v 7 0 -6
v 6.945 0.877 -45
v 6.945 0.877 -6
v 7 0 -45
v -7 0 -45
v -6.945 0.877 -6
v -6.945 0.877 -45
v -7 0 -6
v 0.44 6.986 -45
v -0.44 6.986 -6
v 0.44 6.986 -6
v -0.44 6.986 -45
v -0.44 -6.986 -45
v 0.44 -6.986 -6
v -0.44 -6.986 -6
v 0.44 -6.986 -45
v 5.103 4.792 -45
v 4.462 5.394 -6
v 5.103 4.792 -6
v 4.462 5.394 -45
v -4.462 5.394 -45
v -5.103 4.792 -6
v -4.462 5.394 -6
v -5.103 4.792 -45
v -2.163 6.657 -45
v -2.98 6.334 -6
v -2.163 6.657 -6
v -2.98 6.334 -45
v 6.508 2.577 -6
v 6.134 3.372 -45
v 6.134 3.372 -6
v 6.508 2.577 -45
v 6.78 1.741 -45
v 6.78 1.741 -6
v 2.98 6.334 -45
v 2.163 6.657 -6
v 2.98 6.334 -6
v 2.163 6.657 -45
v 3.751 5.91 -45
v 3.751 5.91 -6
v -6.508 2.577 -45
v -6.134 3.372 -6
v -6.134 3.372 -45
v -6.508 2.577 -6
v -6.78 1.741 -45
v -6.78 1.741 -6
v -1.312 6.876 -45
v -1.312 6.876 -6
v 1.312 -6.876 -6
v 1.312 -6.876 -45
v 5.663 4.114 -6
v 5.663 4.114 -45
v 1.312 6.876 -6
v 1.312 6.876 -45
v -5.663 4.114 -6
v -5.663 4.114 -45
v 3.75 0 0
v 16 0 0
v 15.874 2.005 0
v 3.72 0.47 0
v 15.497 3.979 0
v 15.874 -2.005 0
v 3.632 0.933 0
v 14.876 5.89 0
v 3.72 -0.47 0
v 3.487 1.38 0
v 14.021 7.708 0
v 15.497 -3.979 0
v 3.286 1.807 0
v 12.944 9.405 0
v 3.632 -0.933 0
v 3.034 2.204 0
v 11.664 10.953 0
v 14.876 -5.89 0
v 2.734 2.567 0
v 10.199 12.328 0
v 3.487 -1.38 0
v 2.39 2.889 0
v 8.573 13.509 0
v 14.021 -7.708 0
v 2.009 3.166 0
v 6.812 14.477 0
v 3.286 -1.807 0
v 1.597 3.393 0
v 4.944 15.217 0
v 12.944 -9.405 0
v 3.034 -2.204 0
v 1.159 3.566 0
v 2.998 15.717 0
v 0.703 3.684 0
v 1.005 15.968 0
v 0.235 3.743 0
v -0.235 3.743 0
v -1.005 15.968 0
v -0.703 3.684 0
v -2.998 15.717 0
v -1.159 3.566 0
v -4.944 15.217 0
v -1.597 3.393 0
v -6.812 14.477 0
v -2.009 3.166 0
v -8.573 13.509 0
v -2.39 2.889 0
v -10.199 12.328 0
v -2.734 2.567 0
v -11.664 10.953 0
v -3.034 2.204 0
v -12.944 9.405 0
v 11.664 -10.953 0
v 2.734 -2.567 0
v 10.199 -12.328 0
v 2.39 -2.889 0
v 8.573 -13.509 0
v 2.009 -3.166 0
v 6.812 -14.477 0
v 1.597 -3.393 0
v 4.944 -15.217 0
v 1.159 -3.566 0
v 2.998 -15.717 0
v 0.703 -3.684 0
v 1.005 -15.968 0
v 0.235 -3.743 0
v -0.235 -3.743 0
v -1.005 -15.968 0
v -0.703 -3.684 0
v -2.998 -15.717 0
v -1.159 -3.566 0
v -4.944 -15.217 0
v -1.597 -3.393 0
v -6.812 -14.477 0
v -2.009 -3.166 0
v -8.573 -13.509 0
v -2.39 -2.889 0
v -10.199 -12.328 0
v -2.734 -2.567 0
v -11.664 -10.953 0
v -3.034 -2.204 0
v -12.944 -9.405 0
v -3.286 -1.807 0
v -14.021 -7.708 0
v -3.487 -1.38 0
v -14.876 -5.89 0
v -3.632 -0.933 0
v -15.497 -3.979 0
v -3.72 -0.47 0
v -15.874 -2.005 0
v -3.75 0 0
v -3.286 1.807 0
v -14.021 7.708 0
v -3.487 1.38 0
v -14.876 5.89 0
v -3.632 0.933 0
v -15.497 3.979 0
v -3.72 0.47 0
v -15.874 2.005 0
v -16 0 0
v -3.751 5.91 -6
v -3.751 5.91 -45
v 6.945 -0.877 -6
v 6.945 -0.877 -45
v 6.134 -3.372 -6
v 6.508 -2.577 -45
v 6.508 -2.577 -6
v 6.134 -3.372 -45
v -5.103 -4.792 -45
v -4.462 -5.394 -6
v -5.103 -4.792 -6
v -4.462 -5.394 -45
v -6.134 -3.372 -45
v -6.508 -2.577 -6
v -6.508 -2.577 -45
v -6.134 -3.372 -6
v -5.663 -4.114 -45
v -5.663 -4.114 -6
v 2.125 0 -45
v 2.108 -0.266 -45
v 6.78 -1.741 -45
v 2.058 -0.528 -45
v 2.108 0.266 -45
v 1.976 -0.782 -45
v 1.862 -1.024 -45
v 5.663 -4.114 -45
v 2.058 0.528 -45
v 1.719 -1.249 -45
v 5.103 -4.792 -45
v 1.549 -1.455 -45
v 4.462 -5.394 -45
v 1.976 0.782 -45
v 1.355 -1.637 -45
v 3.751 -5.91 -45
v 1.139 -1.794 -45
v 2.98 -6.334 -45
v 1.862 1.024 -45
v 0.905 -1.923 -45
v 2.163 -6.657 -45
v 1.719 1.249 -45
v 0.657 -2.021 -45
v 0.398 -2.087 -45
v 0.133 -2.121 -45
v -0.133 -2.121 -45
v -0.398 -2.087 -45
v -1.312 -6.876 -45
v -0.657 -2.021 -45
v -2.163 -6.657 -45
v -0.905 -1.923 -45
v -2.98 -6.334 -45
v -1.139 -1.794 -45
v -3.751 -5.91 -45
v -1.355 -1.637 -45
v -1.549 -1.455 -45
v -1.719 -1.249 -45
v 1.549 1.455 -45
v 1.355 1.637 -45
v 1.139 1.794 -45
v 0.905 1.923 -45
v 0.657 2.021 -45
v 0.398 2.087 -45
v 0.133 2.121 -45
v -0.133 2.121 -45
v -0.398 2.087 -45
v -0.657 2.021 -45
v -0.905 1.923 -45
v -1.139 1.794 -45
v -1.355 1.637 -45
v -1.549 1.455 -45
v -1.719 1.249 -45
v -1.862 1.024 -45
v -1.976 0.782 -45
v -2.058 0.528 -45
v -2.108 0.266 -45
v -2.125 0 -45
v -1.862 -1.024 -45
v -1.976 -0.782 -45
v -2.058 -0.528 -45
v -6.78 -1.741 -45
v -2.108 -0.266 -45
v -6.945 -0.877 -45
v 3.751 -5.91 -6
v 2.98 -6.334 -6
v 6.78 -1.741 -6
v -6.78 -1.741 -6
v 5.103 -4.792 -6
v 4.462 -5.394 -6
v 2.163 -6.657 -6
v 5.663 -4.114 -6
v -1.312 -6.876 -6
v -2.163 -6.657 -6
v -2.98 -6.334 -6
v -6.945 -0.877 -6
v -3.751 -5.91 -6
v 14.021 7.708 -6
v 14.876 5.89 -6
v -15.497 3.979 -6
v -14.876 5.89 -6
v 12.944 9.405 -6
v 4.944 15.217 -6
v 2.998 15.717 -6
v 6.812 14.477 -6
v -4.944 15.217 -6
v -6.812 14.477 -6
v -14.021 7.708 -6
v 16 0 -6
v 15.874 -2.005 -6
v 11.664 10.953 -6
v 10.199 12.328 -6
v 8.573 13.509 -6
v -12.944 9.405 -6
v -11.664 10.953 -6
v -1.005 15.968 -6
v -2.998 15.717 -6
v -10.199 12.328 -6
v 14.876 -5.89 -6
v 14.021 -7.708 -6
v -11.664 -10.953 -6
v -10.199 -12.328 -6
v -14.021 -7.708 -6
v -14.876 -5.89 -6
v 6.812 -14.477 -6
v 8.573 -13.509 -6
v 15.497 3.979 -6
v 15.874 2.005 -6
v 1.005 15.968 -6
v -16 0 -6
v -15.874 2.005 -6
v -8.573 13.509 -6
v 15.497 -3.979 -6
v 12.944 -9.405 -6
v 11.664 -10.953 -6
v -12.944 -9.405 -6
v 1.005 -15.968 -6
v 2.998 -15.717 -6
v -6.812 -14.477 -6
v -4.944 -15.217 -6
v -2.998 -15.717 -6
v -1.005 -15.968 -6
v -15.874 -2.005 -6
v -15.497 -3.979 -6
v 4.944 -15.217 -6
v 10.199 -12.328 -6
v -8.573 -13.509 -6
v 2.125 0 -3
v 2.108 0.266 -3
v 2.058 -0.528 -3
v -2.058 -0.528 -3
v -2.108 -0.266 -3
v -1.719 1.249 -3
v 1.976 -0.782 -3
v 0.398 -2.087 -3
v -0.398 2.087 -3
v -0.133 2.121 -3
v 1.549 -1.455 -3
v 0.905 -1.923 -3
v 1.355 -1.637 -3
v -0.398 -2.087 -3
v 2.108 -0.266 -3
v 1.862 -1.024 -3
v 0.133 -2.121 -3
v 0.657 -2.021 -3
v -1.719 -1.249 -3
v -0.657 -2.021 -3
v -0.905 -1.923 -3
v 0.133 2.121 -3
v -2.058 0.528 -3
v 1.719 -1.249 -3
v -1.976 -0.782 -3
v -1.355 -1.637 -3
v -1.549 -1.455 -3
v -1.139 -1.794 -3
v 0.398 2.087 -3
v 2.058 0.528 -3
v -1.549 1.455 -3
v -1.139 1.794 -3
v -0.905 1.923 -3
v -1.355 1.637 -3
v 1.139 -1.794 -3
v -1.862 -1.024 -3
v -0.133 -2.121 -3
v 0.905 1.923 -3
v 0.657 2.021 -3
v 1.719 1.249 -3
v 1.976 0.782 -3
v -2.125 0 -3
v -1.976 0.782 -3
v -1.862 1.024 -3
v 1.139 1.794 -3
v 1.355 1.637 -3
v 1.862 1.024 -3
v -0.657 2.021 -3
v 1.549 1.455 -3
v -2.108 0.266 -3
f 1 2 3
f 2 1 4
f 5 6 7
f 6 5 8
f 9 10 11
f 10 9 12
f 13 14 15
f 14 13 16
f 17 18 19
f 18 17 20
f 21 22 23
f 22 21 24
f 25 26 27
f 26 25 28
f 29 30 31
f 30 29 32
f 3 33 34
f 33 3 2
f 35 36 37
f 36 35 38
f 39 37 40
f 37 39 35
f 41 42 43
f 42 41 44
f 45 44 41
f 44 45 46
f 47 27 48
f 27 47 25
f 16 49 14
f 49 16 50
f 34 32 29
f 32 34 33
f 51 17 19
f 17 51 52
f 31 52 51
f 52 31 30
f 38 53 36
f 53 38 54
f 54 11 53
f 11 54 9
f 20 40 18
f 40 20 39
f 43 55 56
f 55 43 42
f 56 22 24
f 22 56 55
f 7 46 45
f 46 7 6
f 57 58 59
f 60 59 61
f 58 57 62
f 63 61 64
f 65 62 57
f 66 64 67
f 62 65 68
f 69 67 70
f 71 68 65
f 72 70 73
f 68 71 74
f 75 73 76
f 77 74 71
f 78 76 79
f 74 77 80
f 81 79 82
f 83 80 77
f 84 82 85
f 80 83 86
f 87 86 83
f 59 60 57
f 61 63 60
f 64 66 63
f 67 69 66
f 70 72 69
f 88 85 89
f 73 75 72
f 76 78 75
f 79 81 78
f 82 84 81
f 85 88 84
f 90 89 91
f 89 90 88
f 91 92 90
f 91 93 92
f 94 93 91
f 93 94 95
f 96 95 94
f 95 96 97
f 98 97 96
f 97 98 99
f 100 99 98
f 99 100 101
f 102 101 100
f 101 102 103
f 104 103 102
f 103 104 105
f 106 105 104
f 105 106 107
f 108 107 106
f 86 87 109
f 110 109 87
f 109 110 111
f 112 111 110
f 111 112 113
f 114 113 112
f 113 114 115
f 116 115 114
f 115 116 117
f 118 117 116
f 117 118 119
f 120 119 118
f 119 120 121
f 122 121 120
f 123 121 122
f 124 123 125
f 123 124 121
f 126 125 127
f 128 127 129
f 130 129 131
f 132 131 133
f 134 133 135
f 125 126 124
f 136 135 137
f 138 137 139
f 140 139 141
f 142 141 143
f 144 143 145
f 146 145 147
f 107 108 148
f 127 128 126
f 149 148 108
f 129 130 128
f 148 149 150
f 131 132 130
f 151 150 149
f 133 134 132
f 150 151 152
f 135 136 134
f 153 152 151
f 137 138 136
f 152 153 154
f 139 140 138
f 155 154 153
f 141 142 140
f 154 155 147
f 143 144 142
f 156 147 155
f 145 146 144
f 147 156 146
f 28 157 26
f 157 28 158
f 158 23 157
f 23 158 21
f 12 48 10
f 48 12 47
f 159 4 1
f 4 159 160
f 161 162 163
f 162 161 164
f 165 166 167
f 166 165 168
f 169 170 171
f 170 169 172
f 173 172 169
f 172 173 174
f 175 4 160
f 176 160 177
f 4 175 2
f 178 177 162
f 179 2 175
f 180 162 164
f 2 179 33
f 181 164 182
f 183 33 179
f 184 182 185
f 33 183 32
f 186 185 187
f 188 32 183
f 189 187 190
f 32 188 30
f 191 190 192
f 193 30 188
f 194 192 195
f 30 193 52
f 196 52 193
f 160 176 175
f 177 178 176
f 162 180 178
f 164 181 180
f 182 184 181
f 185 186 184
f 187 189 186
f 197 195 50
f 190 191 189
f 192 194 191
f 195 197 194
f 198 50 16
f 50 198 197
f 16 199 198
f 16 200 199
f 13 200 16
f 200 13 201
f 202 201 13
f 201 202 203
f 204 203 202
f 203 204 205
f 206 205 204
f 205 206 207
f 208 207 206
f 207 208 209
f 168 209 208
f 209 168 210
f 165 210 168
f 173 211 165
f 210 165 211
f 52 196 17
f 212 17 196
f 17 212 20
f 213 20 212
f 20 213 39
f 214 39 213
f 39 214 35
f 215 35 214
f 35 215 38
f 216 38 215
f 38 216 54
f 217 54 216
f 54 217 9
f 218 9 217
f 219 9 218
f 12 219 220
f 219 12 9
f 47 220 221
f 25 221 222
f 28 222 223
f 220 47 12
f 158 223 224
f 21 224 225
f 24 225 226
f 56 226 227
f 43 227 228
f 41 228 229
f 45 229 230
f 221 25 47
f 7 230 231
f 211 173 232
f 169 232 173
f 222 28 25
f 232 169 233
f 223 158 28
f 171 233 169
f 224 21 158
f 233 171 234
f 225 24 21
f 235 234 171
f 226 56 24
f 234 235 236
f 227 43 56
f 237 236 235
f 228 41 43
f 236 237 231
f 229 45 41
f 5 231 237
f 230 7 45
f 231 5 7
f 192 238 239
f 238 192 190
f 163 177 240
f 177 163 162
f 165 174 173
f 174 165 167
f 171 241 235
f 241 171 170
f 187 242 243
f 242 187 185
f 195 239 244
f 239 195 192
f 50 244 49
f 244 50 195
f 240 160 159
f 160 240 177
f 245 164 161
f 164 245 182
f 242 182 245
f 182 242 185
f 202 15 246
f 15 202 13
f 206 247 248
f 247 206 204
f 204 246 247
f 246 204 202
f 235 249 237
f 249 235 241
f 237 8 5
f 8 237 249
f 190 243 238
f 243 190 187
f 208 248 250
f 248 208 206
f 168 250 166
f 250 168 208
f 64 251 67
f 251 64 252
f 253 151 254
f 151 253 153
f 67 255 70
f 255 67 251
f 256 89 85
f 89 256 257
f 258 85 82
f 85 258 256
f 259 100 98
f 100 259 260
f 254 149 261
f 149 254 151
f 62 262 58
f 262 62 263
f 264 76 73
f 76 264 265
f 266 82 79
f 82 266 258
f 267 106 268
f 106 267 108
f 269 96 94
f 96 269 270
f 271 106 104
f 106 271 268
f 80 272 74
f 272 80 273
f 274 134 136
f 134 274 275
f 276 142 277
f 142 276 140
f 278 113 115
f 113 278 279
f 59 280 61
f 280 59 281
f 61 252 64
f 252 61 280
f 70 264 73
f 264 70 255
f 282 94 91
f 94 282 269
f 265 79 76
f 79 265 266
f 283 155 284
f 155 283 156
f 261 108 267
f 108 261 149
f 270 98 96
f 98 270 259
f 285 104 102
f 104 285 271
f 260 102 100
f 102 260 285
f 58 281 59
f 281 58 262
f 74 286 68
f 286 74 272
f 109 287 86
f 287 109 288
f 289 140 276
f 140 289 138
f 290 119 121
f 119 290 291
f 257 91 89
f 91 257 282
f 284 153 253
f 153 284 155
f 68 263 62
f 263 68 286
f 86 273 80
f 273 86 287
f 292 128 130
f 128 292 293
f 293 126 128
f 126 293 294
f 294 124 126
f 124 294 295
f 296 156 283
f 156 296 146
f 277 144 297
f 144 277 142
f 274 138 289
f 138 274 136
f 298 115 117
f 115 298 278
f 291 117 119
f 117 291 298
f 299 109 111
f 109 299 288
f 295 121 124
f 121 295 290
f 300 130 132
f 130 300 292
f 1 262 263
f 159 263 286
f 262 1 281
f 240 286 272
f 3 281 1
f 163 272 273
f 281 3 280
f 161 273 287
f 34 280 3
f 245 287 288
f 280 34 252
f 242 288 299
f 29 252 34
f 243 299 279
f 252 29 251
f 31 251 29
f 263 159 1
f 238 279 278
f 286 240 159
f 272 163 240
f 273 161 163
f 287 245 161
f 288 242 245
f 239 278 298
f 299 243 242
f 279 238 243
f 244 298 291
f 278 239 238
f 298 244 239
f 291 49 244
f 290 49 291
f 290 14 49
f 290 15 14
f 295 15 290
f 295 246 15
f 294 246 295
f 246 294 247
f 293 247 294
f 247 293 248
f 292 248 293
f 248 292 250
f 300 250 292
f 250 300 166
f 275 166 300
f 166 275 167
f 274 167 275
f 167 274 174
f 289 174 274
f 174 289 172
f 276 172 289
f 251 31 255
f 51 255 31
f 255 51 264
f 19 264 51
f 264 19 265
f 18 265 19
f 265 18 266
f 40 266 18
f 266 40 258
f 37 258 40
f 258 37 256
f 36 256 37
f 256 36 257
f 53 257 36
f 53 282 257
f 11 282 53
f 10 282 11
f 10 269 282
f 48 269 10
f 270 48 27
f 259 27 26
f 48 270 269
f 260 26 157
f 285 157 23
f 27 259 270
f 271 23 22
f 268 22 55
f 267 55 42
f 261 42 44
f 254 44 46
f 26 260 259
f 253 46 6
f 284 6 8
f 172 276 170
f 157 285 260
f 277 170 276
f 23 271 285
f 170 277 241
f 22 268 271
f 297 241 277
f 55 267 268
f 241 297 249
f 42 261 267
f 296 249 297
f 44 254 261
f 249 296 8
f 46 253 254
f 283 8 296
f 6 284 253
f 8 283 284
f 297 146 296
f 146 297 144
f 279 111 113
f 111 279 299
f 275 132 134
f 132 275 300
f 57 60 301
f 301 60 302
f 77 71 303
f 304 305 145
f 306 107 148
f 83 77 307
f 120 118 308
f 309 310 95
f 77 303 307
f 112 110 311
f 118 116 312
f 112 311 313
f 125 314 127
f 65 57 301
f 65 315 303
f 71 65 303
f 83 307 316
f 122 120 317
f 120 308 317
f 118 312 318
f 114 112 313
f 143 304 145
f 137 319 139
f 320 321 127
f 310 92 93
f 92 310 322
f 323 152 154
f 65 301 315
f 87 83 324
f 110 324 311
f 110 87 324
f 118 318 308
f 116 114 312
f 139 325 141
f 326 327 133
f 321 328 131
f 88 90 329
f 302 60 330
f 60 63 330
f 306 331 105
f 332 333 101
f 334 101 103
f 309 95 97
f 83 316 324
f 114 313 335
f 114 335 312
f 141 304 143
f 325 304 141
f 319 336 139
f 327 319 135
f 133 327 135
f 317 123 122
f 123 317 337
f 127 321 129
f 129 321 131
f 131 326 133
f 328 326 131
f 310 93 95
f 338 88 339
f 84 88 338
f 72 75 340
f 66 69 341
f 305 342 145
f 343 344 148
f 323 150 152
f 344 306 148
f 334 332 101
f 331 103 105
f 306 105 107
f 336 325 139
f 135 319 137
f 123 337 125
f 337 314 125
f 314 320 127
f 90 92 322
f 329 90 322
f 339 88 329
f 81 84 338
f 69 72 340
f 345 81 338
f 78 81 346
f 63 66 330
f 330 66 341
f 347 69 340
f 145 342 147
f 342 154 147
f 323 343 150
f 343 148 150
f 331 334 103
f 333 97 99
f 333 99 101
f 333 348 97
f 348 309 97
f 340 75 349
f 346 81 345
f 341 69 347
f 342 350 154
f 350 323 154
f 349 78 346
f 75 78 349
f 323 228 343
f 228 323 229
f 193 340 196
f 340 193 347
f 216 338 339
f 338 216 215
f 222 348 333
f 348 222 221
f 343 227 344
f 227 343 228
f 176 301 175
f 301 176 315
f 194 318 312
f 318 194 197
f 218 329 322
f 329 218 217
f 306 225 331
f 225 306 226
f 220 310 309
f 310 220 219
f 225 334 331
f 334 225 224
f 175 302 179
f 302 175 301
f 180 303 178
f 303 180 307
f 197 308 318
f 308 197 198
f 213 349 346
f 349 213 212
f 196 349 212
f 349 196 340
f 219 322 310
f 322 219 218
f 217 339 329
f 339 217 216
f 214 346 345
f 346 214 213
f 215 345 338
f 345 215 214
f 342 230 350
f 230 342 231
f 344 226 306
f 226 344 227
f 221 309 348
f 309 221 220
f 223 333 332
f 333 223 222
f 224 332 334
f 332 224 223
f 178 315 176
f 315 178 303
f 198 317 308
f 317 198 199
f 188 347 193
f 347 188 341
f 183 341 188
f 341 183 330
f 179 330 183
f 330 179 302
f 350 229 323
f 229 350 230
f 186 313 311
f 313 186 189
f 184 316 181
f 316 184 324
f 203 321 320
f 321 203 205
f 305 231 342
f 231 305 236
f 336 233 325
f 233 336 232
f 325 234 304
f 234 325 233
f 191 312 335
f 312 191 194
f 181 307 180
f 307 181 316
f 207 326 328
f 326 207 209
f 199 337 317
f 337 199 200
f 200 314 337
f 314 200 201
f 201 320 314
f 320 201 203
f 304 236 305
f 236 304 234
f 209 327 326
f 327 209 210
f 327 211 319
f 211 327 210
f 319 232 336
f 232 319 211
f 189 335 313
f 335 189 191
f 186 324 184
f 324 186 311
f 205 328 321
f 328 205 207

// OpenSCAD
$fn = 50;


difference() {
	union() {
		translate(v = [0, 0, -45.0000000000]) {
			cylinder(h = 45, r = 7.0000000000);
		}
		translate(v = [0, 0, -6.0000000000]) {
			cylinder(h = 6, r = 16.0000000000);
		}
	}
	union() {
		translate(v = [0, 0, 0]) {
			rotate(a = [0, 0, 0]) {
				difference() {
					union() {
						#translate(v = [0, 0, -45.0000000000]) {
							cylinder(h = 45, r = 2.0000000000);
						}
						#translate(v = [0, 0, -3]) {
							cylinder(h = 3, r1 = 2.1250000000, r2 = 3.7500000000);
						}
						#translate(v = [0, 0, -45.0000000000]) {
							cylinder(h = 45, r = 2.1250000000);
						}
						#translate(v = [0, 0, -45.0000000000]) {
							cylinder(h = 45, r = 2.0000000000);
						}
					}
					union();
				}
			}
		}
	}
}
